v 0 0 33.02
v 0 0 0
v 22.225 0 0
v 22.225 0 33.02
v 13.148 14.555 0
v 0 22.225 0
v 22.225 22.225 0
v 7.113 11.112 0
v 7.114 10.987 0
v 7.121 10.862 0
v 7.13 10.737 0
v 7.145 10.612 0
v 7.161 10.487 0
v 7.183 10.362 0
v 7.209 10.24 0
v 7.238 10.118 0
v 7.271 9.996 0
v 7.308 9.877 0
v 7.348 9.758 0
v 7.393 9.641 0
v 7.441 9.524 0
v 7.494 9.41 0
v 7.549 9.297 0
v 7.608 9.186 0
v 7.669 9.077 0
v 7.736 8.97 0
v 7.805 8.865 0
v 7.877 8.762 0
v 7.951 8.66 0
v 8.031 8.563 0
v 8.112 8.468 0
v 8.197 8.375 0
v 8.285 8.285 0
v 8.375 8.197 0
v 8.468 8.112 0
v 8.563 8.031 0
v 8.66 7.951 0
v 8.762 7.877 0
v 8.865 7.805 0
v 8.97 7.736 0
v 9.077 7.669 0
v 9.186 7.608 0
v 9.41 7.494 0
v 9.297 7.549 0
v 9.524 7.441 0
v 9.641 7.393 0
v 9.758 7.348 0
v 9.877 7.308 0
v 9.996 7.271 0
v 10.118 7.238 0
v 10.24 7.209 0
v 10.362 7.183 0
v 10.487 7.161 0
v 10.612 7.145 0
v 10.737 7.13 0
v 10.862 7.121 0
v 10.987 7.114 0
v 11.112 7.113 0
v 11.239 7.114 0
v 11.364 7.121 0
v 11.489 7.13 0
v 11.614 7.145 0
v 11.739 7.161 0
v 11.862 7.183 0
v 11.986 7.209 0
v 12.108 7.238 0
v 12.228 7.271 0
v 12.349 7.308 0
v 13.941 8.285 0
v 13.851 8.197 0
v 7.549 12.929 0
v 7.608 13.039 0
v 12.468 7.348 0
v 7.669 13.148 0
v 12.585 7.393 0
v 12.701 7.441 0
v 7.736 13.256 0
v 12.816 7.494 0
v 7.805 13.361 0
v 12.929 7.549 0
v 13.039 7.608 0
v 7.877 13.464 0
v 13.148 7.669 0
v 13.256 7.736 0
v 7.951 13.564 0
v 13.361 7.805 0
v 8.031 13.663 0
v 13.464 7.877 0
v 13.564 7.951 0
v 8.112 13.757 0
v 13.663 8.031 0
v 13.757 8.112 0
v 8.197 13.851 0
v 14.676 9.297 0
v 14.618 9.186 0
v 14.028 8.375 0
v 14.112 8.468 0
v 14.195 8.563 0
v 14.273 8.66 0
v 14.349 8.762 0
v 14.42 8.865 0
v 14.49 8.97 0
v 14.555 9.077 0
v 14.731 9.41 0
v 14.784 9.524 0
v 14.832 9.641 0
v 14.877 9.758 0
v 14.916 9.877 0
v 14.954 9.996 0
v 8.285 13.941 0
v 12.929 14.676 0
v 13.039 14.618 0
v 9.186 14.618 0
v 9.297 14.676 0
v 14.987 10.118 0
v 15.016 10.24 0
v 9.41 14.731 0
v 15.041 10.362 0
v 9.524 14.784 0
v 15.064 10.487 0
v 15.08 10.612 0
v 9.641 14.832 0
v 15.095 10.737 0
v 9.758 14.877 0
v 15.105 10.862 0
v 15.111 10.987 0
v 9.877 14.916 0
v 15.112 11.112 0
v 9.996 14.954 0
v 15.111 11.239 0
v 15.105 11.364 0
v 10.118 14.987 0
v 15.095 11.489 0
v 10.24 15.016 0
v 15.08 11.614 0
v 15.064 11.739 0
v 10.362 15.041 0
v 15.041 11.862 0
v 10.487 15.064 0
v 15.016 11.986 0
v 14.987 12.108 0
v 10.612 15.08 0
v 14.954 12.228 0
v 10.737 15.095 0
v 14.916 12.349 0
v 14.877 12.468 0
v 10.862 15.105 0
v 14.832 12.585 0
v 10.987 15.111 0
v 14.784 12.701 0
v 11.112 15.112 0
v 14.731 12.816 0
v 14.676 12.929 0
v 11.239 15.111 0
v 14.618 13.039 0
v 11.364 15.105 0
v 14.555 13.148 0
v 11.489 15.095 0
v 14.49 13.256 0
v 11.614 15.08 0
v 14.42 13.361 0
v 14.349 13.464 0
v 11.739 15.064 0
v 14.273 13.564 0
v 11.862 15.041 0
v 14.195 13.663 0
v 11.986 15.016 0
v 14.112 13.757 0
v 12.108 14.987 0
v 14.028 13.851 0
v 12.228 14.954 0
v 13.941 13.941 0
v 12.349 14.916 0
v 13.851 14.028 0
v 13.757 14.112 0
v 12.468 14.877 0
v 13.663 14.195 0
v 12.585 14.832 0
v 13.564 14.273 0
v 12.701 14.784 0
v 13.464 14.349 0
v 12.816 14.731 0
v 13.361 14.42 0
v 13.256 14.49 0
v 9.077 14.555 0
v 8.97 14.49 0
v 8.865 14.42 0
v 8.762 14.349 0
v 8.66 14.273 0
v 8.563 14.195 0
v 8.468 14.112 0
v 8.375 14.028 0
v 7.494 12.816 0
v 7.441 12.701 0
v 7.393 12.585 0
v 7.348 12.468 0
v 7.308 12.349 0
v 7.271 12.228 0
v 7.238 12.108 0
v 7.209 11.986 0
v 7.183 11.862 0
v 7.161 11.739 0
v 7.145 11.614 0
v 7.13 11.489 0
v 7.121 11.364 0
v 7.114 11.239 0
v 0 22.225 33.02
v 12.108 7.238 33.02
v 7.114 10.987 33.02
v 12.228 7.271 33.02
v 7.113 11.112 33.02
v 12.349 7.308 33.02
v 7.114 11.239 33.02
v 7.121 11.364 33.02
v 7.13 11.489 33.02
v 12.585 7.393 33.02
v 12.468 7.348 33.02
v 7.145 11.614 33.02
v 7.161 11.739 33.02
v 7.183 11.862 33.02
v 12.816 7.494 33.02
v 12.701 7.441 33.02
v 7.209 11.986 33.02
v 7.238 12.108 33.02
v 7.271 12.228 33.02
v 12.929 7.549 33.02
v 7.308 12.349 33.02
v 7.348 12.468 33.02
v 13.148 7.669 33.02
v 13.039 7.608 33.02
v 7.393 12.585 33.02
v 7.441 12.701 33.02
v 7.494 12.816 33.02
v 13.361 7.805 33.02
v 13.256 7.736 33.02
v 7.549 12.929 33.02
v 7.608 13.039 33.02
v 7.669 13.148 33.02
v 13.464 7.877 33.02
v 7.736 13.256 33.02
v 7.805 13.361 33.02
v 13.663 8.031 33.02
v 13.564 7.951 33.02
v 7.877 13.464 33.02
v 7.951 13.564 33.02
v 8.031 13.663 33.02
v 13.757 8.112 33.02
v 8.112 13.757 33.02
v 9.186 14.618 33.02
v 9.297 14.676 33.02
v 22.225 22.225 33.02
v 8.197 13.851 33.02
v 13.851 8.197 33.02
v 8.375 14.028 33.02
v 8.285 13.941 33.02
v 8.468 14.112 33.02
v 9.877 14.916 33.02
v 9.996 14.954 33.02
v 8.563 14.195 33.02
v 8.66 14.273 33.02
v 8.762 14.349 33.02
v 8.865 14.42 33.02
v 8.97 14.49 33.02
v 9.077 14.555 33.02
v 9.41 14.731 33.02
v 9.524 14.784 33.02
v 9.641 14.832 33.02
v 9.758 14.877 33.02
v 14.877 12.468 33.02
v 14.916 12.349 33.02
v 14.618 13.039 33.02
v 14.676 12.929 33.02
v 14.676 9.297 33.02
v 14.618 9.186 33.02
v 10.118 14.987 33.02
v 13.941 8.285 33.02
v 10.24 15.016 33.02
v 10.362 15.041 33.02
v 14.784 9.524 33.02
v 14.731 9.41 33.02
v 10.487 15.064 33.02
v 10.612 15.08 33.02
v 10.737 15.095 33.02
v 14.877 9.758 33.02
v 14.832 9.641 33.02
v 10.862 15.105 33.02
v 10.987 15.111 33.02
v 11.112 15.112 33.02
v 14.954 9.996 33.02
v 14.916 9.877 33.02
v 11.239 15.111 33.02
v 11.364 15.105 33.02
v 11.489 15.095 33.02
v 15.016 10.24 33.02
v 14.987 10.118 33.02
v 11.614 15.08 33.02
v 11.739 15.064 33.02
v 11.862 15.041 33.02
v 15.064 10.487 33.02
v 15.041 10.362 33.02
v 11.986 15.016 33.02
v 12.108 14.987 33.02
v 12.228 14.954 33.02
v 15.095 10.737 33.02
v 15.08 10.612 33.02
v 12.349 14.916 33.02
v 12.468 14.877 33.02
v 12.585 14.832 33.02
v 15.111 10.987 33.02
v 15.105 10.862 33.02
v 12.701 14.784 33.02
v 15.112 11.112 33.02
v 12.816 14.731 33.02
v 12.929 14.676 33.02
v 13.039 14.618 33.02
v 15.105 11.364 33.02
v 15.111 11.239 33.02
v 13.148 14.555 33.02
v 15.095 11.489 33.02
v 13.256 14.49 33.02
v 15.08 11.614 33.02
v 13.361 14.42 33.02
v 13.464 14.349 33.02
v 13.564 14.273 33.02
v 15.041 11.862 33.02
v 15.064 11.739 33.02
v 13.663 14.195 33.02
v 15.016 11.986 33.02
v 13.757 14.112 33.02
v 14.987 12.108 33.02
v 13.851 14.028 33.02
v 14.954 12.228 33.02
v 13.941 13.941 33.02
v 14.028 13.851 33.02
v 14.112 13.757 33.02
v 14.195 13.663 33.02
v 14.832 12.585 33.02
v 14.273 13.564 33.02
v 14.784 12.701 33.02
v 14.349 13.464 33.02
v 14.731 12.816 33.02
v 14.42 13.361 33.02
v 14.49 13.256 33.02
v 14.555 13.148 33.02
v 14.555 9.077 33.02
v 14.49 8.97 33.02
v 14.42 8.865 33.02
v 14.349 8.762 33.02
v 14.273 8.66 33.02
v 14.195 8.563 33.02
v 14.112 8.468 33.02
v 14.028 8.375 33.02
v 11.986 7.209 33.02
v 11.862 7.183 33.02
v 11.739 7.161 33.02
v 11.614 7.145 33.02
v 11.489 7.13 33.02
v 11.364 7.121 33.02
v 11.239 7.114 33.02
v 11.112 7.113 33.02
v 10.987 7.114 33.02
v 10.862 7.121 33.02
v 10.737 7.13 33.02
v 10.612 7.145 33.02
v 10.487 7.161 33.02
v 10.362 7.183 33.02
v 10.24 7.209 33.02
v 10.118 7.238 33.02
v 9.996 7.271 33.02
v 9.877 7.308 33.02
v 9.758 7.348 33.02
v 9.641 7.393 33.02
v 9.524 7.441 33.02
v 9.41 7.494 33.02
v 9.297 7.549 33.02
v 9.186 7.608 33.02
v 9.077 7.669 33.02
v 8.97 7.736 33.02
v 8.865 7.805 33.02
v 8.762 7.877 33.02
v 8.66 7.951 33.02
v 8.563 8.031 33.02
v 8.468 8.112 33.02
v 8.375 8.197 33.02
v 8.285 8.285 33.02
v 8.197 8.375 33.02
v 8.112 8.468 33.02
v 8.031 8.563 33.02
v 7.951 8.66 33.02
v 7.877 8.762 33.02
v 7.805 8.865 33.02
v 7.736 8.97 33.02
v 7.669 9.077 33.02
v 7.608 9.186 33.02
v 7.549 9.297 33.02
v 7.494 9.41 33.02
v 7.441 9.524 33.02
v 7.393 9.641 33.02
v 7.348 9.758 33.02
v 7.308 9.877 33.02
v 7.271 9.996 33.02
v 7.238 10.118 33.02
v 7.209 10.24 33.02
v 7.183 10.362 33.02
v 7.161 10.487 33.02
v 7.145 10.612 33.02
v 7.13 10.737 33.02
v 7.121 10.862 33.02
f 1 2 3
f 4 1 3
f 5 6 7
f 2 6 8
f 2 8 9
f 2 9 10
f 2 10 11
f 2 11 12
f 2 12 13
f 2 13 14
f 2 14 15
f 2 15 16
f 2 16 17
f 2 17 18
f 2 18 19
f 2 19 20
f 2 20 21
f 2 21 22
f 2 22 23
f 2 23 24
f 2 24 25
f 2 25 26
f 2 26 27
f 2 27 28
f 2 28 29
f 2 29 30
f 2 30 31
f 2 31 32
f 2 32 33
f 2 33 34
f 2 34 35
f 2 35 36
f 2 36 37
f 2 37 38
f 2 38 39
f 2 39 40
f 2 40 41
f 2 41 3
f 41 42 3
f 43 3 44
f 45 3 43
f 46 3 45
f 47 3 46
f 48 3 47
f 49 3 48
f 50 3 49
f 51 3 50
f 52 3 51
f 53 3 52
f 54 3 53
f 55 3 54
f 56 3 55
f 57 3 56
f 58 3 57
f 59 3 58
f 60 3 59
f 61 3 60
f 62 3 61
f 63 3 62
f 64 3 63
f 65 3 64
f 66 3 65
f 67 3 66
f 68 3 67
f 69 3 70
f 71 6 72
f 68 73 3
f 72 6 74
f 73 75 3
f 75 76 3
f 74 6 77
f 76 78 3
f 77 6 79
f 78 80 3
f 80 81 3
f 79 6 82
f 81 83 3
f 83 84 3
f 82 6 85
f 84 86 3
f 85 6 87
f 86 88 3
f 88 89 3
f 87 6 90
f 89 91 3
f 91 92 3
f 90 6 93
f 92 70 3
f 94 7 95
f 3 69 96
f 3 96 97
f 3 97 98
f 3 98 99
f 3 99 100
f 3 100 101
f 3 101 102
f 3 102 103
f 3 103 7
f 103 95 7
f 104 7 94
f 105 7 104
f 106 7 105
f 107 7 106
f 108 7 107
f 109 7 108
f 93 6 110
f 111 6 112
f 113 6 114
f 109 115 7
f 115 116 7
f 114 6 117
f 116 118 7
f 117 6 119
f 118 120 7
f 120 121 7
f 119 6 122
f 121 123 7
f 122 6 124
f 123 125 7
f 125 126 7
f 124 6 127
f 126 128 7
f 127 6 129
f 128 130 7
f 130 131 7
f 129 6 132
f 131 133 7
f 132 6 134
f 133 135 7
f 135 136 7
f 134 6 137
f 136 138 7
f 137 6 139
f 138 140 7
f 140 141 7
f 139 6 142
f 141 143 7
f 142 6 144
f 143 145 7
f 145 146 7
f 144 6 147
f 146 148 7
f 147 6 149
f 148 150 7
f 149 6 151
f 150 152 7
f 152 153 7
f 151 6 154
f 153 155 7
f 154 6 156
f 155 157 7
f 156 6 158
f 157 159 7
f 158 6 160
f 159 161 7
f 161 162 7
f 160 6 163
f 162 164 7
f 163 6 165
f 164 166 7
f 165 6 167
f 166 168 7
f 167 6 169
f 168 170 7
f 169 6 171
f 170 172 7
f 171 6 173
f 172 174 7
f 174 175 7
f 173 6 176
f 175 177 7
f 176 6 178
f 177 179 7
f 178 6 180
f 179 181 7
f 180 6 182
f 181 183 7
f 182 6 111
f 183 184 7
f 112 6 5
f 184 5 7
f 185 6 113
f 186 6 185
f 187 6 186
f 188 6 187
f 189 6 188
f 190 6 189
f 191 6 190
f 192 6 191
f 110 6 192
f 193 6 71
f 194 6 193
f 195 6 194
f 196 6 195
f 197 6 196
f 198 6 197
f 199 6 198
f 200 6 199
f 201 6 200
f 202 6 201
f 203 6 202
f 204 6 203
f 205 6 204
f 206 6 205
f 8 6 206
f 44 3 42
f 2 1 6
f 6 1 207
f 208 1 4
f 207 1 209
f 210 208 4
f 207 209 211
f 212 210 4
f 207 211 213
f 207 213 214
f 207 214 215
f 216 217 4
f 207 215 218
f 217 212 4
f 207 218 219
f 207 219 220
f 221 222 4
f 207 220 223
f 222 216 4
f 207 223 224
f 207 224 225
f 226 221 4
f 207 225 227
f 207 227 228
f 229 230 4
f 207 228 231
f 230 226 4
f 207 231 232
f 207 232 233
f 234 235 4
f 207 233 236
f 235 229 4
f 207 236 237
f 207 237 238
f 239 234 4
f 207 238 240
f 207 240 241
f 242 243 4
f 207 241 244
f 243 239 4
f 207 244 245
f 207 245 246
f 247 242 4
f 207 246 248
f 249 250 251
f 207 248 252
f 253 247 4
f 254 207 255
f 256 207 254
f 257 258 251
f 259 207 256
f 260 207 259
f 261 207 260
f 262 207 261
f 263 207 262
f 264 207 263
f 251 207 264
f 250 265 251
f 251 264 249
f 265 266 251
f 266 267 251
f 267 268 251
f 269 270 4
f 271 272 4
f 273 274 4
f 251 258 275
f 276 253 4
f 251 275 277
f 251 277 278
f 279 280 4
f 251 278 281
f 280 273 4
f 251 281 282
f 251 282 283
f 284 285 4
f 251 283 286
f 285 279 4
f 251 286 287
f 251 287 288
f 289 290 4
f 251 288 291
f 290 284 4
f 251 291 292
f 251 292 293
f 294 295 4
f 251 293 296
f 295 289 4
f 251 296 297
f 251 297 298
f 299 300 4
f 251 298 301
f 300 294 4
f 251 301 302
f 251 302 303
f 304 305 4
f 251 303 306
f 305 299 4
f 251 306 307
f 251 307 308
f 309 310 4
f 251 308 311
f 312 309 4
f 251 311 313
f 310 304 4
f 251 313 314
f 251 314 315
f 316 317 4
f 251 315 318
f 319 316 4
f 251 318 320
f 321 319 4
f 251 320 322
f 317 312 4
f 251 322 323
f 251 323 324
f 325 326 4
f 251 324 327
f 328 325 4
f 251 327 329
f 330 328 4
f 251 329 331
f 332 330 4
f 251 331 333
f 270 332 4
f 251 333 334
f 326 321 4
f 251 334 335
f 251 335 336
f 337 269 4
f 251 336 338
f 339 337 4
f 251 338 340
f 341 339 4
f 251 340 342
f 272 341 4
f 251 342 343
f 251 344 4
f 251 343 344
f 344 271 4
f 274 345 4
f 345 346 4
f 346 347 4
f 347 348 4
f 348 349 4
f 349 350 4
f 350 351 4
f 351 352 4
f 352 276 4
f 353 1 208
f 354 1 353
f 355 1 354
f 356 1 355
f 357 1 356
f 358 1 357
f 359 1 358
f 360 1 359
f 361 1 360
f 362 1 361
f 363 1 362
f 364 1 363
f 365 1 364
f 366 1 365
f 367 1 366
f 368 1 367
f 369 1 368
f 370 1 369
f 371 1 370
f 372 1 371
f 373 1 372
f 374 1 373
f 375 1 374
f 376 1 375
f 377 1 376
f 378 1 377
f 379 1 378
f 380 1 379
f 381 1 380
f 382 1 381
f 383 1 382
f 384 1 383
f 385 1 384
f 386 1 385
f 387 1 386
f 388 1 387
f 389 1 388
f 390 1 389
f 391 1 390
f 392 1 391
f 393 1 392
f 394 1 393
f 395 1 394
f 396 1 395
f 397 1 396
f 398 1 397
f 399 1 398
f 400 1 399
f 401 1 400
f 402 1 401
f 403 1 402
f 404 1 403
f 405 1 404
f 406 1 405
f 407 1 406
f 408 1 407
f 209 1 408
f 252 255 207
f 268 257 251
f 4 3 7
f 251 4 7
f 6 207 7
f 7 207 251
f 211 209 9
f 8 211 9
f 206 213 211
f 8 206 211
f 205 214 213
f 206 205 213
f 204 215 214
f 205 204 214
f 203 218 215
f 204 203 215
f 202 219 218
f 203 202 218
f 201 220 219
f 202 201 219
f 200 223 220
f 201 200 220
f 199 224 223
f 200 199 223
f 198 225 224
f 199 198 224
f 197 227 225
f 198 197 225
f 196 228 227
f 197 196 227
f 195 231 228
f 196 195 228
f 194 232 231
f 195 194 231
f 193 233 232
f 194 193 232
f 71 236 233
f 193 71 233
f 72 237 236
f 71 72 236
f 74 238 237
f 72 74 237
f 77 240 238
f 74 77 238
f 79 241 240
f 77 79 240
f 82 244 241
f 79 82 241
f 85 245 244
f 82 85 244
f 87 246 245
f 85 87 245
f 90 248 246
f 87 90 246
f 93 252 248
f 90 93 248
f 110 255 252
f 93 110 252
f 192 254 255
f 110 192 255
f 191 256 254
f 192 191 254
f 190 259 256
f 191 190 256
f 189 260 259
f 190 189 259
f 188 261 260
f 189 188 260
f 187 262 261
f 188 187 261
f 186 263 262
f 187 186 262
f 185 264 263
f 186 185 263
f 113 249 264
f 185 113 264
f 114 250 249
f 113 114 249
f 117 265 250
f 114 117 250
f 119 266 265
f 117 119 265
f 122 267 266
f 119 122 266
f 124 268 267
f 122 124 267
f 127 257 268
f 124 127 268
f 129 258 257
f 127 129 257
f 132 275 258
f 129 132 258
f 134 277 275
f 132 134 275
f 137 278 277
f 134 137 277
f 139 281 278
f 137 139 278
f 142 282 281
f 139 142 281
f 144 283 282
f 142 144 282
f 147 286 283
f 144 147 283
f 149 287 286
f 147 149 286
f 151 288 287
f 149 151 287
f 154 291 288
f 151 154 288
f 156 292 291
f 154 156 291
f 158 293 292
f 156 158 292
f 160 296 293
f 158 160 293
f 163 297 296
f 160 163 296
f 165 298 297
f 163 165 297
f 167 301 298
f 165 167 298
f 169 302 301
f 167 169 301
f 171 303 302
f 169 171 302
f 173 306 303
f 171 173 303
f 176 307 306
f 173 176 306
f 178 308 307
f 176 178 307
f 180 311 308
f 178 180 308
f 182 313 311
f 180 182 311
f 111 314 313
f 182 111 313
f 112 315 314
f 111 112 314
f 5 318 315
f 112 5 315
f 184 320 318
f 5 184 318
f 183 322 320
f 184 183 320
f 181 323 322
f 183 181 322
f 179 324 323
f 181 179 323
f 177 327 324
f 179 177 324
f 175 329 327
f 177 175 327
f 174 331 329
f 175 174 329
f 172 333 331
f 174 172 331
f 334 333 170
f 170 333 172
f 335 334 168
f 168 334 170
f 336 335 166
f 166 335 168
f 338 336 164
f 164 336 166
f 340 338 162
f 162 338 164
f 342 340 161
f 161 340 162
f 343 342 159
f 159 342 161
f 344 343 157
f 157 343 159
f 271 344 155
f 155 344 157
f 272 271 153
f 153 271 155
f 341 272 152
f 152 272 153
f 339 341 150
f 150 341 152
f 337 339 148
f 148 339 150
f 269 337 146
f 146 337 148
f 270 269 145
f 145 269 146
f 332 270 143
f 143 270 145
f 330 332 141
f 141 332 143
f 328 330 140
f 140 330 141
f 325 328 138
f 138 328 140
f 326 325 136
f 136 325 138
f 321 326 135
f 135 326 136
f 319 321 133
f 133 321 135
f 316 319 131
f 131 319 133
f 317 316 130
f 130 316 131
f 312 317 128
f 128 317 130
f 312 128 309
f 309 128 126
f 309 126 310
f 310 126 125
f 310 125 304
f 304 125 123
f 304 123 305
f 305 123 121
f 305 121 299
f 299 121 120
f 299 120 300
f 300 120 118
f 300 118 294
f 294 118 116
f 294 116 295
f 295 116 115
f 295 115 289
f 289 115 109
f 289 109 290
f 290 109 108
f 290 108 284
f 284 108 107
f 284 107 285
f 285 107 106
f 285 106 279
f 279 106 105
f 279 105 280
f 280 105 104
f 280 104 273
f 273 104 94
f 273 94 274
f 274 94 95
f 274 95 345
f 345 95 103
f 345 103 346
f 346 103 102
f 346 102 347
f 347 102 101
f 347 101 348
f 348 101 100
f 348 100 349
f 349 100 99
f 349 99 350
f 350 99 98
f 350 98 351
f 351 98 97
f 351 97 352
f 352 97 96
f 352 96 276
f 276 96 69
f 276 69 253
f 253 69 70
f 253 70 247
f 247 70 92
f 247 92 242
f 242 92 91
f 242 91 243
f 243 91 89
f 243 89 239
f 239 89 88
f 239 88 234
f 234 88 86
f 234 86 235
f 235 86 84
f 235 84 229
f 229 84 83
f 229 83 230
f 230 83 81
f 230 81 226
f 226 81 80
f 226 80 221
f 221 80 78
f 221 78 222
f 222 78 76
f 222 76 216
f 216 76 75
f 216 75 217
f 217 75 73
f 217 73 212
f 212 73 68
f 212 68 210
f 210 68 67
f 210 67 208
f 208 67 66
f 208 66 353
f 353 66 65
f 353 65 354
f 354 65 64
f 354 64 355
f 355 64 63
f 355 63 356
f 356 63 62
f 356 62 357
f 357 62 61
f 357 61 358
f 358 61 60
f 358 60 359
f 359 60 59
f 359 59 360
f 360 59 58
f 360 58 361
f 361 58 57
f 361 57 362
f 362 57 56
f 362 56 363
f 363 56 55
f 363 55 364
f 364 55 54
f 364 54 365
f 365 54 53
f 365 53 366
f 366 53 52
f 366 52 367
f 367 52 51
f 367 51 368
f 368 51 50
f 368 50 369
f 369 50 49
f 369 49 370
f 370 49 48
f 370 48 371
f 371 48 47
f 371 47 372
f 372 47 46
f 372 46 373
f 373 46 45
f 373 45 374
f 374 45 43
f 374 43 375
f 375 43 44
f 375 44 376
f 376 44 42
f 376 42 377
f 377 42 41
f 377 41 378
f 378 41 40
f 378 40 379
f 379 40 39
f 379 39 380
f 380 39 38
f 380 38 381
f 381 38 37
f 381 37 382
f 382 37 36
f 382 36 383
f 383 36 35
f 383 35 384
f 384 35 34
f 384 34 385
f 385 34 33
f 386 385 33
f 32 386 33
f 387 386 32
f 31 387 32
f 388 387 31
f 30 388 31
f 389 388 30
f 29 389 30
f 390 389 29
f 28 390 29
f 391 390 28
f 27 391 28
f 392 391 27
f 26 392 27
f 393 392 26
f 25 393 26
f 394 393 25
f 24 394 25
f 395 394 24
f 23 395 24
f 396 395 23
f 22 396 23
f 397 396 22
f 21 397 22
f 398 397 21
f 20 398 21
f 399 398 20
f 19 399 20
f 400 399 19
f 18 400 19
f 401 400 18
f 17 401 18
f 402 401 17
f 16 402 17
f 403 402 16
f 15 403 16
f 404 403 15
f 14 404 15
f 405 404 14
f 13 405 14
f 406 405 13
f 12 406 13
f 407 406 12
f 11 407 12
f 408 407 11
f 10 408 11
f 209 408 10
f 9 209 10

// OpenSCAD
width = 22.225;
depth = 22.225;
height = 33.02;
bolt = 8;

#difference()
{
linear_extrude(height = height )
{
	polygon(points=[[0, 0],[width, 0],[width, depth], [0, depth]]);

}

linear_extrude(height = height)
{
	translate([width/2, depth/2,0])
	{
		circle($fn = 200, r = bolt/2);
	}
}
}
